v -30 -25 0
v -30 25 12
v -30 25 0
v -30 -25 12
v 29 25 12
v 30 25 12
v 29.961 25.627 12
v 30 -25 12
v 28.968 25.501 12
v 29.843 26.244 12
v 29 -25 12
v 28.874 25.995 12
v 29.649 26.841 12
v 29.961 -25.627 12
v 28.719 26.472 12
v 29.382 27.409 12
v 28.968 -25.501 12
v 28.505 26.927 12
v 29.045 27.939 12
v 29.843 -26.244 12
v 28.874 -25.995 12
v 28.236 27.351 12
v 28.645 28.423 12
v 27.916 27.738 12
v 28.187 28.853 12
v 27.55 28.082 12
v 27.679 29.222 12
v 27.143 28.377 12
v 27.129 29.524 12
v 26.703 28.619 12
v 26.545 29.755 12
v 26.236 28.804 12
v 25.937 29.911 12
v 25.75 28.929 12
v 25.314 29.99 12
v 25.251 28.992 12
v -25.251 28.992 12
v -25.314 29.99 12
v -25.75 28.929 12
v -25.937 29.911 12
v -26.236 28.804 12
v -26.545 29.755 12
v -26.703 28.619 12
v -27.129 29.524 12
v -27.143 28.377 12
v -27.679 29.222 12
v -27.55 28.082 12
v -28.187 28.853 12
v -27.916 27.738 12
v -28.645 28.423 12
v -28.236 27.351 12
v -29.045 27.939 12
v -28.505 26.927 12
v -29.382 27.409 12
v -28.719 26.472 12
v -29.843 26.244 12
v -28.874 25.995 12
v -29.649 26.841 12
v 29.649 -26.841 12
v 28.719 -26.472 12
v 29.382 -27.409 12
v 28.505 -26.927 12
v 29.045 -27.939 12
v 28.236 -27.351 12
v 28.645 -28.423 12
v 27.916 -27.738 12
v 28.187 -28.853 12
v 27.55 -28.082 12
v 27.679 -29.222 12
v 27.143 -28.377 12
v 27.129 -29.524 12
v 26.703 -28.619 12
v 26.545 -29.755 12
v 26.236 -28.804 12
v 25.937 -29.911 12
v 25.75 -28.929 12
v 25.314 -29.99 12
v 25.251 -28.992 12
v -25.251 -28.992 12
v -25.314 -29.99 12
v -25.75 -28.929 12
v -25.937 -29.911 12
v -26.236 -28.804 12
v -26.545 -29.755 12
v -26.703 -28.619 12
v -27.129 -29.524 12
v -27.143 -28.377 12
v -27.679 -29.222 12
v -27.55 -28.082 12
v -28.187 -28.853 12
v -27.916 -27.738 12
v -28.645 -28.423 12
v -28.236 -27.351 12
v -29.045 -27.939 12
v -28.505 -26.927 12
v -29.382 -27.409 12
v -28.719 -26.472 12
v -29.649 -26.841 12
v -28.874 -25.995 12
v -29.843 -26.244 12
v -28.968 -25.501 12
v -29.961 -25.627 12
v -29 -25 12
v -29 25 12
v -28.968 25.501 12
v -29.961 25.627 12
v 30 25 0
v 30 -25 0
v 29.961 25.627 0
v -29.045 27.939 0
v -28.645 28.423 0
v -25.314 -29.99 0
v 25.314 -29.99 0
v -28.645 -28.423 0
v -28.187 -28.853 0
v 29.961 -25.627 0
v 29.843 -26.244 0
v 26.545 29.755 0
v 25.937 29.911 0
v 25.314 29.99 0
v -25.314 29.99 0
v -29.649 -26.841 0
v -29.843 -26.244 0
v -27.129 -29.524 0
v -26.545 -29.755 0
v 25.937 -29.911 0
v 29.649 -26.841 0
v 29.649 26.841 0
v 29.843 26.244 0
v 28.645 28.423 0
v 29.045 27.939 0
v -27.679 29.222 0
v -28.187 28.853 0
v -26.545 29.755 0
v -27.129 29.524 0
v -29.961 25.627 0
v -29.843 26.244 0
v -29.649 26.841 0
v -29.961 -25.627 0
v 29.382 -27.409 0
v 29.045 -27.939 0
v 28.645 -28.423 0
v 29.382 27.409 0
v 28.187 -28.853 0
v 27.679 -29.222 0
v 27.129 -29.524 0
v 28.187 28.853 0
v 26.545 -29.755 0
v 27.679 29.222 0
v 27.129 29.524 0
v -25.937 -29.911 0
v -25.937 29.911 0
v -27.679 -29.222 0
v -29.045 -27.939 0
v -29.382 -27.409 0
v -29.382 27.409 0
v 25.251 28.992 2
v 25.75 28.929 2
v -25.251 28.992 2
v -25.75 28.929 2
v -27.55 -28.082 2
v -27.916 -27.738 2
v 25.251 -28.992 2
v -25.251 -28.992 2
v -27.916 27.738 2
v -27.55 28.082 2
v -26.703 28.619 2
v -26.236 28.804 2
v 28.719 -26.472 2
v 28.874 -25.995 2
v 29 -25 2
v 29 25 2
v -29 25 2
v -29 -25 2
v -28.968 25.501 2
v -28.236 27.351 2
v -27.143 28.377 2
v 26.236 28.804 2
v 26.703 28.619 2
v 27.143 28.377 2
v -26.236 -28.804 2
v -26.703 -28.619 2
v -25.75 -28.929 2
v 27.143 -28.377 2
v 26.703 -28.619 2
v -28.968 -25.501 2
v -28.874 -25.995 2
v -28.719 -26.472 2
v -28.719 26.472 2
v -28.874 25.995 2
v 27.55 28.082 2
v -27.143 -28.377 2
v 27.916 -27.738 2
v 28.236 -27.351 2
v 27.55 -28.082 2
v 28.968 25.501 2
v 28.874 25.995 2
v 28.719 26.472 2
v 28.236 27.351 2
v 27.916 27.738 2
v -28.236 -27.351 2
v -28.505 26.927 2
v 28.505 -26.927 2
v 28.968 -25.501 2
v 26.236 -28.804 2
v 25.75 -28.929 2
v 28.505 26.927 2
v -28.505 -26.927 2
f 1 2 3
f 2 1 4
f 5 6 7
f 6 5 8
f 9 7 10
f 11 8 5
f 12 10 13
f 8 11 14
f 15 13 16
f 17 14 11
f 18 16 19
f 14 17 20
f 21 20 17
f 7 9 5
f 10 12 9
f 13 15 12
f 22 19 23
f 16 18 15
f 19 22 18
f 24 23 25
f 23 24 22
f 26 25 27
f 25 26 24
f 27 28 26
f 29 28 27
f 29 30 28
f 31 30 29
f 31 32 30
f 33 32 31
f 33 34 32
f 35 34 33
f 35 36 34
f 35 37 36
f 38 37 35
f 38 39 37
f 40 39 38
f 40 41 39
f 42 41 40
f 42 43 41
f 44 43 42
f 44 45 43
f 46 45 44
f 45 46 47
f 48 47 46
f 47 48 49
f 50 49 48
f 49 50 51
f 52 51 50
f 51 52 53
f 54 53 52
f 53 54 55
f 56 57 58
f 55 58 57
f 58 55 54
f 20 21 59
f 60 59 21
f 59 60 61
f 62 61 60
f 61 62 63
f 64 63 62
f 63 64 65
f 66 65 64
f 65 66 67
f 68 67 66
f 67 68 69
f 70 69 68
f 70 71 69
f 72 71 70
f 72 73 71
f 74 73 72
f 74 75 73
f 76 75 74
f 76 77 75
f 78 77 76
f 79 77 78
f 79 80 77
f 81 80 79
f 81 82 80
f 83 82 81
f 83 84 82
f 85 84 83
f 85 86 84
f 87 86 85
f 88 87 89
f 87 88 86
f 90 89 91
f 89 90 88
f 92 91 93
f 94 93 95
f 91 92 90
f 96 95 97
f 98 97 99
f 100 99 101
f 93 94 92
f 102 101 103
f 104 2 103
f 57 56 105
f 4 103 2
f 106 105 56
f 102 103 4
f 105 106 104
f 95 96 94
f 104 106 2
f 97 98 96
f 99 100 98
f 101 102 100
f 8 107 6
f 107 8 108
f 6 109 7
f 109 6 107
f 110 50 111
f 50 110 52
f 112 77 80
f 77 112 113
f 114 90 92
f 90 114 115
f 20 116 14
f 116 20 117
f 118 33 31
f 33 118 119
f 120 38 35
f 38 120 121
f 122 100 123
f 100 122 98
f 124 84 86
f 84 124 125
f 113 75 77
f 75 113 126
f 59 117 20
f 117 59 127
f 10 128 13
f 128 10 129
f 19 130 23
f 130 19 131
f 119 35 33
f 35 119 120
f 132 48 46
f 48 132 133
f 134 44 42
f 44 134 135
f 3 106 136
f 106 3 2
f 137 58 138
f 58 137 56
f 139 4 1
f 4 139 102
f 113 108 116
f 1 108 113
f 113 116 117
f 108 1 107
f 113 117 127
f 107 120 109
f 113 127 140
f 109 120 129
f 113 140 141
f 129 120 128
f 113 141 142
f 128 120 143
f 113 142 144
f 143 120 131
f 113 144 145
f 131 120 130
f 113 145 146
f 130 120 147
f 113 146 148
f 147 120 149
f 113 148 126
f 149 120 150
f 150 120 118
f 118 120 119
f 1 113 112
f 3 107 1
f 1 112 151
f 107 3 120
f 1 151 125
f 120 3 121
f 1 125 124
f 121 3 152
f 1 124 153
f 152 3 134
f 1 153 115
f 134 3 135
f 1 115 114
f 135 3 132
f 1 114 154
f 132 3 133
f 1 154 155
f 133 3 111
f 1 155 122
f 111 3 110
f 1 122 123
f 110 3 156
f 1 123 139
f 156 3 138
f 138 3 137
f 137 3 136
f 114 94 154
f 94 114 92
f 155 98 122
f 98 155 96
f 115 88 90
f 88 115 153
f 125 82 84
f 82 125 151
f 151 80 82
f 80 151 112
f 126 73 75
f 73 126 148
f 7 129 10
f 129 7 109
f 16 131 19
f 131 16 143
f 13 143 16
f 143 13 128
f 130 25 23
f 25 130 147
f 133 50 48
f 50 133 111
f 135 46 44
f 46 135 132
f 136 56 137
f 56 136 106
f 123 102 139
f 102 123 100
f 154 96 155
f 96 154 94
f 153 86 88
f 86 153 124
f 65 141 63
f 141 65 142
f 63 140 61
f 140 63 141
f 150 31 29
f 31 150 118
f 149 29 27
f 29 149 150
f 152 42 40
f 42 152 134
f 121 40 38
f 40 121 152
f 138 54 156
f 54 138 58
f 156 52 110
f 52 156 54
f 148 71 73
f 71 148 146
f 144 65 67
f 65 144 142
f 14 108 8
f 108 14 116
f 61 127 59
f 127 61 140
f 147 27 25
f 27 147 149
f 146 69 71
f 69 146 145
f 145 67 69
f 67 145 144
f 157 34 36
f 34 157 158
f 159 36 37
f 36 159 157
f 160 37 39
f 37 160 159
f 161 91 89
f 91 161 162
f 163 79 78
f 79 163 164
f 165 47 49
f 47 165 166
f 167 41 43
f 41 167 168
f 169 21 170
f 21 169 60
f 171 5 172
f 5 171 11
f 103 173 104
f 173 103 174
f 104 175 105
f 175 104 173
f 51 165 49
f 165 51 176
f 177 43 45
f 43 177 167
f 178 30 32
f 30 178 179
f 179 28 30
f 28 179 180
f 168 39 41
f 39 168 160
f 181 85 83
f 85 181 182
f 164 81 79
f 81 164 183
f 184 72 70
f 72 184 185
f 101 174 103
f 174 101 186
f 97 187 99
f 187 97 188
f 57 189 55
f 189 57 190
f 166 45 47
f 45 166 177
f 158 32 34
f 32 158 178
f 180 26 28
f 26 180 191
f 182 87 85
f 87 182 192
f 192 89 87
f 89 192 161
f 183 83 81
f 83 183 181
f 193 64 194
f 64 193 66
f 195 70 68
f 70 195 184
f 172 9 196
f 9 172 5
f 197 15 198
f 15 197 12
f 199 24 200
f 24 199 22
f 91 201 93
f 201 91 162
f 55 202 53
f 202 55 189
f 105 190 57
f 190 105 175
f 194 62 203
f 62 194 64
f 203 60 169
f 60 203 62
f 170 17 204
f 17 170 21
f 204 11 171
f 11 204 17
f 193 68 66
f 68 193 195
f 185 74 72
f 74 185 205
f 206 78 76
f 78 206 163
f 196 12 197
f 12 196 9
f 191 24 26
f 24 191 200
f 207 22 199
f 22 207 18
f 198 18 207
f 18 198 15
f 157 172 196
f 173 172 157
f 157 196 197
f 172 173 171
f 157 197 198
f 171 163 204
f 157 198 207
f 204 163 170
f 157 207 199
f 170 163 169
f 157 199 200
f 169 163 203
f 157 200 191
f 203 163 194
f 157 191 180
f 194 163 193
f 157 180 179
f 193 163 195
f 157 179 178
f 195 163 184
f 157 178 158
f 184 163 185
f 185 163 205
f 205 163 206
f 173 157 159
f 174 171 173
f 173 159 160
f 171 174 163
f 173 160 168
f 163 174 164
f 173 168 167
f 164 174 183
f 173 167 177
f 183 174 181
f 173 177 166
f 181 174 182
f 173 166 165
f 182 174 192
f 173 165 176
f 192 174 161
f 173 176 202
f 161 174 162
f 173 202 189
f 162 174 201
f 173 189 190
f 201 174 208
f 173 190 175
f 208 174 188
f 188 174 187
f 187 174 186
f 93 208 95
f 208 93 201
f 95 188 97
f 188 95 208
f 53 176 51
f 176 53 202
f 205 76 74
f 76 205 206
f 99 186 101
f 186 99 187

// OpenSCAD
$fn = 50;


difference() {
	union() {
		hull() {
			translate(v = [-25.0000000000, 25.0000000000, 0]) {
				cylinder(h = 12, r = 5);
			}
			translate(v = [25.0000000000, 25.0000000000, 0]) {
				cylinder(h = 12, r = 5);
			}
			translate(v = [-25.0000000000, -25.0000000000, 0]) {
				cylinder(h = 12, r = 5);
			}
			translate(v = [25.0000000000, -25.0000000000, 0]) {
				cylinder(h = 12, r = 5);
			}
		}
	}
	union() {
		translate(v = [0, 0, 2]) {
			#hull() {
				translate(v = [-25.0000000000, 25.0000000000, 0]) {
					cylinder(h = 10, r = 4);
				}
				translate(v = [25.0000000000, 25.0000000000, 0]) {
					cylinder(h = 10, r = 4);
				}
				translate(v = [-25.0000000000, -25.0000000000, 0]) {
					cylinder(h = 10, r = 4);
				}
				translate(v = [25.0000000000, -25.0000000000, 0]) {
					cylinder(h = 10, r = 4);
				}
			}
		}
	}
}
